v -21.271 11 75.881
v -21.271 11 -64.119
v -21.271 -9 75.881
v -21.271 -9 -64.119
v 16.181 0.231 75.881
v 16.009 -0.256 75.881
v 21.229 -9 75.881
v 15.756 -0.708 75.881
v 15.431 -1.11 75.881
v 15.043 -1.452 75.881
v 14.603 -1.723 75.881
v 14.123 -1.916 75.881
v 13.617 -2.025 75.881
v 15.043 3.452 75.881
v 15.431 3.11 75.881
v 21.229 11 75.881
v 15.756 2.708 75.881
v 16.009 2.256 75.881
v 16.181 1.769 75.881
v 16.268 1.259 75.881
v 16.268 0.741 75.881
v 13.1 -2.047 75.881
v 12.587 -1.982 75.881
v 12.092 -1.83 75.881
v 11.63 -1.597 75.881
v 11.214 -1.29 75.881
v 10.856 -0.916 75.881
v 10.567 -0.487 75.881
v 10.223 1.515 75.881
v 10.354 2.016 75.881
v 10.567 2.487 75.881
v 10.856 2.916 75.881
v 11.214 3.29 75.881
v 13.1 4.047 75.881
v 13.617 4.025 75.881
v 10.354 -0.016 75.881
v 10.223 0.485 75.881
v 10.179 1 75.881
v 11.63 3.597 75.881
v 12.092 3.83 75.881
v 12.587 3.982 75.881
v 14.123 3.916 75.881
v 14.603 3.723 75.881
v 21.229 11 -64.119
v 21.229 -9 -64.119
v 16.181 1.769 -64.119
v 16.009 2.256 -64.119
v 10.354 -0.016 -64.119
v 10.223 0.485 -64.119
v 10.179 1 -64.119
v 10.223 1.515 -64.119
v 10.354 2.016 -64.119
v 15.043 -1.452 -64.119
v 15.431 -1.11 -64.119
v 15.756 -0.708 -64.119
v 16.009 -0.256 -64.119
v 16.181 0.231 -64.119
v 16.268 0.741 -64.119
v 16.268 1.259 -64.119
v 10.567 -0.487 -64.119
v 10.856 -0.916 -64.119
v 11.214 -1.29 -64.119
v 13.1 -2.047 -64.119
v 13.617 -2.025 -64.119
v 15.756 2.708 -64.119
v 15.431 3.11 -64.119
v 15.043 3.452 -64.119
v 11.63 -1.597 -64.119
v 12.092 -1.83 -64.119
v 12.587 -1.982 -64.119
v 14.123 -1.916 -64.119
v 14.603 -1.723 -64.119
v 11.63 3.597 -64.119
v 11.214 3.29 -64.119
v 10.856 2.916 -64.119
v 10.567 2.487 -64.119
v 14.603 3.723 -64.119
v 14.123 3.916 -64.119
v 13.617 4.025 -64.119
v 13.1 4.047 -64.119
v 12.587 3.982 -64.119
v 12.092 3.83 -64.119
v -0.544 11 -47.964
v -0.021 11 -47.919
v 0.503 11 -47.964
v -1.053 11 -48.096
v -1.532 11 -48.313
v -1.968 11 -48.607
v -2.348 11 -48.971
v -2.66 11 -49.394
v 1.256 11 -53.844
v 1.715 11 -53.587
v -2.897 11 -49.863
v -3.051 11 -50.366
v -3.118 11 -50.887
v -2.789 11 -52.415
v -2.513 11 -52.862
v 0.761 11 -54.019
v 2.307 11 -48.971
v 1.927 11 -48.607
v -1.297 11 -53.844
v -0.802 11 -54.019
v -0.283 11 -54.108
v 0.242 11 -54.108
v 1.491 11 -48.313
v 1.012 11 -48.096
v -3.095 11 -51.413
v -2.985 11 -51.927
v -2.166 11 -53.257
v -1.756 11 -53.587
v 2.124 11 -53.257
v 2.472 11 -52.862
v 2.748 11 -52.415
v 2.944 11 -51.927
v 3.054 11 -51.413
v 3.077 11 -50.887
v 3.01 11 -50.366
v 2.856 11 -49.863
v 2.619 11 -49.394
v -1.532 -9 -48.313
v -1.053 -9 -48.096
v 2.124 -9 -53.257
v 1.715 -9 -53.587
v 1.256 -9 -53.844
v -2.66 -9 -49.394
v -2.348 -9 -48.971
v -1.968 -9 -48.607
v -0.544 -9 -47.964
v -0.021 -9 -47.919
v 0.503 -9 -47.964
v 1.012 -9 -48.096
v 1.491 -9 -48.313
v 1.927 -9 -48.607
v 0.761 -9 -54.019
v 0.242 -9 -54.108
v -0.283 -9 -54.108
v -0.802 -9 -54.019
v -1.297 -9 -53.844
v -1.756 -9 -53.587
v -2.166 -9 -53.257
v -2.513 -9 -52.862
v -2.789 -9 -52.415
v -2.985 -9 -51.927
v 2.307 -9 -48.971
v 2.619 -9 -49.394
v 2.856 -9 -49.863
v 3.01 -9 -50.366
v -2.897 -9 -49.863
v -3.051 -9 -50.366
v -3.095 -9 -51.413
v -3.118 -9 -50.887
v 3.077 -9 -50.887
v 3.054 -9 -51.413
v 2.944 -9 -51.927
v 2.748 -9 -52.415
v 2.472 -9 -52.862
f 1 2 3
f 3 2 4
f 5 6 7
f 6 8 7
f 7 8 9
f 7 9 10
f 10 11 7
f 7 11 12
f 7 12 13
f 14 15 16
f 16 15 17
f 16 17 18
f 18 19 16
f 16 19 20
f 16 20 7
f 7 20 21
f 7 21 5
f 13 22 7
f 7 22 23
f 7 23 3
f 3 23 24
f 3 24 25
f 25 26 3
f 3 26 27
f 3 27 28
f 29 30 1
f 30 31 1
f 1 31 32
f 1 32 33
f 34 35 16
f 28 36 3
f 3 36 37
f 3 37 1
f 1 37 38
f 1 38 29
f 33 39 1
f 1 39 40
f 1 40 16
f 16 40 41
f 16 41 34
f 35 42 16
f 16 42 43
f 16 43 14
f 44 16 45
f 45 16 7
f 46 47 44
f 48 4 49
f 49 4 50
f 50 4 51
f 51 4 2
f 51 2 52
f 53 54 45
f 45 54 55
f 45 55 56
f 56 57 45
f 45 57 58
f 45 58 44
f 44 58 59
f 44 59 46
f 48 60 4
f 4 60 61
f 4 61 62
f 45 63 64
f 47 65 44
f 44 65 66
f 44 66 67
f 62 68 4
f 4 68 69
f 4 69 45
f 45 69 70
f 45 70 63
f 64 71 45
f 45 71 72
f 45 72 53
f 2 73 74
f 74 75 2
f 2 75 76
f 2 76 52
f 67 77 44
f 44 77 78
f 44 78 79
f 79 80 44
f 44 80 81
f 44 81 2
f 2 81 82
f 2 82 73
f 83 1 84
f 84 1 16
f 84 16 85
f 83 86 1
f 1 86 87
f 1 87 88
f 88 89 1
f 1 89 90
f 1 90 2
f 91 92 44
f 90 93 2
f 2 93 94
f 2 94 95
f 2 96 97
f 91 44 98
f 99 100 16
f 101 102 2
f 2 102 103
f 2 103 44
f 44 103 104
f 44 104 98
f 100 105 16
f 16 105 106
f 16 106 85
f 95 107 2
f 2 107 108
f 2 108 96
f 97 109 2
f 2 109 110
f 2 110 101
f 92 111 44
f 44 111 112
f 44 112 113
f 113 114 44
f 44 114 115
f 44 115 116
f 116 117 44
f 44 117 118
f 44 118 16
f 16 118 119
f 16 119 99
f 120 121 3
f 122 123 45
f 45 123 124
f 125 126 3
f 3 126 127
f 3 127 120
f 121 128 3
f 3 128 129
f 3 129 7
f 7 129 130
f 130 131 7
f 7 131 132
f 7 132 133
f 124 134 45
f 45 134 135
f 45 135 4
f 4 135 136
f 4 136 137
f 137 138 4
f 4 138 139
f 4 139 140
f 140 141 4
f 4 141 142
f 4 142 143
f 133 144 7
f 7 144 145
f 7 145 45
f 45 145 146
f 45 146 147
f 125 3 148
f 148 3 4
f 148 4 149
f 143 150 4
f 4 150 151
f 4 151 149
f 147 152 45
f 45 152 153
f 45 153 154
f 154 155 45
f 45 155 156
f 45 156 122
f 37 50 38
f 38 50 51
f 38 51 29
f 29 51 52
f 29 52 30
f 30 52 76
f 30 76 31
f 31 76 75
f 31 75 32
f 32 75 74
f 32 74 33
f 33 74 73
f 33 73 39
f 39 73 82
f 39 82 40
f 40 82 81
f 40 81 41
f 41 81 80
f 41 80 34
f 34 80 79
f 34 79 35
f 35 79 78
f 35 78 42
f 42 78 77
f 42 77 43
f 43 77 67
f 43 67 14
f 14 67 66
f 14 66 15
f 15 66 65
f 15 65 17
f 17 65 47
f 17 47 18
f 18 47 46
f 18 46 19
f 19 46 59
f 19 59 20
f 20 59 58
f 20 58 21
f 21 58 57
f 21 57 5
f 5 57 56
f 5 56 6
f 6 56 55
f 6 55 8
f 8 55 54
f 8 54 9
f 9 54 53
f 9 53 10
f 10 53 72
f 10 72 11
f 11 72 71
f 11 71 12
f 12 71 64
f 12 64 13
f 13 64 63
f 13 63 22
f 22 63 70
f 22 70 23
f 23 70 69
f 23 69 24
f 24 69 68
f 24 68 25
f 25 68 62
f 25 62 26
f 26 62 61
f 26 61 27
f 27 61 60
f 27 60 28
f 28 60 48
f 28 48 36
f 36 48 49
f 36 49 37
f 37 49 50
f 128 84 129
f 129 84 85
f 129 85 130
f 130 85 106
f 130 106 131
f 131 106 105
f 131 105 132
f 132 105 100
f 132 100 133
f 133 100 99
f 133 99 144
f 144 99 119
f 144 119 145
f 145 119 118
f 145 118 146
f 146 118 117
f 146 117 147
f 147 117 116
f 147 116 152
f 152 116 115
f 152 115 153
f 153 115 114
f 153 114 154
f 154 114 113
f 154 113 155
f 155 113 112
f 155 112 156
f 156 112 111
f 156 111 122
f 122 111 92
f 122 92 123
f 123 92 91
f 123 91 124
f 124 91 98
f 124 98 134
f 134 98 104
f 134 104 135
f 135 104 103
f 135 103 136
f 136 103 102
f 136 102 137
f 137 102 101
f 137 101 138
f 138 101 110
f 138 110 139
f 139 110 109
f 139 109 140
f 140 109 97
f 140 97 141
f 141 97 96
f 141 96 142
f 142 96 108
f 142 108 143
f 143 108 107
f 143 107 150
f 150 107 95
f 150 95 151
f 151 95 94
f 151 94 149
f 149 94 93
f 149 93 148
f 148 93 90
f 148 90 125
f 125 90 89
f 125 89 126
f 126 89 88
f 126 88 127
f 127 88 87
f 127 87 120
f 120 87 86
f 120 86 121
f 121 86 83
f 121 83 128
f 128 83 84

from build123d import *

# Parameters (mm, degrees)
SKETCH1_W           = 4.25
SKETCH1_H           = 14
BOSS_EXTRUDE1_DEPTH = 2
SCALE1_SCALE        = 10
SKETCH2_R           = 3.05
CUT_EXTRUDE1_DEPTH  = 143.03321973
SKETCH4_R           = 3.1
CUT_EXTRUDE2_DEPTH  = 82.304166761


with BuildPart() as part:
    # Sketch1 → Boss-Extrude1 (new body)
    with BuildSketch(Plane(origin=(0, 0, 0), x_dir=(1, 0, 0), z_dir=(0, 1, 0))):
        with Locations((-0.020531401, -5.881038647)):
            Rectangle(SKETCH1_W, SKETCH1_H)
    extrude(amount=BOSS_EXTRUDE1_DEPTH)


with BuildPart() as part_1:
    # Scale1: scaled about (-0.020531401, 1, 5.881038647)
    add(part.part.scale(SCALE1_SCALE).moved(Location((0.184782609, -9, -52.929347823))))

    # Sketch2 → Cut-Extrude1 (cut, through all)
    with BuildSketch(Plane(origin=(0, 0, -64.118961353), x_dir=(-1, 0, 0), z_dir=(0, 0, -1))):
        with Locations((-13.229468599, 1)):
            Circle(SKETCH2_R)
    extrude(amount=-CUT_EXTRUDE1_DEPTH, mode=Mode.SUBTRACT)

    # Sketch4 → Cut-Extrude2 (cut, through all)
    with BuildSketch(Plane(origin=(0, 11, 0), x_dir=(1, 0, 0), z_dir=(0, 1, 0))):
        with Locations(Location((-0.020531401, 51.018961353, 0), (0, 0, 270))):
            Circle(SKETCH4_R)
    extrude(amount=-CUT_EXTRUDE2_DEPTH, mode=Mode.SUBTRACT)


solid = part_1.part
